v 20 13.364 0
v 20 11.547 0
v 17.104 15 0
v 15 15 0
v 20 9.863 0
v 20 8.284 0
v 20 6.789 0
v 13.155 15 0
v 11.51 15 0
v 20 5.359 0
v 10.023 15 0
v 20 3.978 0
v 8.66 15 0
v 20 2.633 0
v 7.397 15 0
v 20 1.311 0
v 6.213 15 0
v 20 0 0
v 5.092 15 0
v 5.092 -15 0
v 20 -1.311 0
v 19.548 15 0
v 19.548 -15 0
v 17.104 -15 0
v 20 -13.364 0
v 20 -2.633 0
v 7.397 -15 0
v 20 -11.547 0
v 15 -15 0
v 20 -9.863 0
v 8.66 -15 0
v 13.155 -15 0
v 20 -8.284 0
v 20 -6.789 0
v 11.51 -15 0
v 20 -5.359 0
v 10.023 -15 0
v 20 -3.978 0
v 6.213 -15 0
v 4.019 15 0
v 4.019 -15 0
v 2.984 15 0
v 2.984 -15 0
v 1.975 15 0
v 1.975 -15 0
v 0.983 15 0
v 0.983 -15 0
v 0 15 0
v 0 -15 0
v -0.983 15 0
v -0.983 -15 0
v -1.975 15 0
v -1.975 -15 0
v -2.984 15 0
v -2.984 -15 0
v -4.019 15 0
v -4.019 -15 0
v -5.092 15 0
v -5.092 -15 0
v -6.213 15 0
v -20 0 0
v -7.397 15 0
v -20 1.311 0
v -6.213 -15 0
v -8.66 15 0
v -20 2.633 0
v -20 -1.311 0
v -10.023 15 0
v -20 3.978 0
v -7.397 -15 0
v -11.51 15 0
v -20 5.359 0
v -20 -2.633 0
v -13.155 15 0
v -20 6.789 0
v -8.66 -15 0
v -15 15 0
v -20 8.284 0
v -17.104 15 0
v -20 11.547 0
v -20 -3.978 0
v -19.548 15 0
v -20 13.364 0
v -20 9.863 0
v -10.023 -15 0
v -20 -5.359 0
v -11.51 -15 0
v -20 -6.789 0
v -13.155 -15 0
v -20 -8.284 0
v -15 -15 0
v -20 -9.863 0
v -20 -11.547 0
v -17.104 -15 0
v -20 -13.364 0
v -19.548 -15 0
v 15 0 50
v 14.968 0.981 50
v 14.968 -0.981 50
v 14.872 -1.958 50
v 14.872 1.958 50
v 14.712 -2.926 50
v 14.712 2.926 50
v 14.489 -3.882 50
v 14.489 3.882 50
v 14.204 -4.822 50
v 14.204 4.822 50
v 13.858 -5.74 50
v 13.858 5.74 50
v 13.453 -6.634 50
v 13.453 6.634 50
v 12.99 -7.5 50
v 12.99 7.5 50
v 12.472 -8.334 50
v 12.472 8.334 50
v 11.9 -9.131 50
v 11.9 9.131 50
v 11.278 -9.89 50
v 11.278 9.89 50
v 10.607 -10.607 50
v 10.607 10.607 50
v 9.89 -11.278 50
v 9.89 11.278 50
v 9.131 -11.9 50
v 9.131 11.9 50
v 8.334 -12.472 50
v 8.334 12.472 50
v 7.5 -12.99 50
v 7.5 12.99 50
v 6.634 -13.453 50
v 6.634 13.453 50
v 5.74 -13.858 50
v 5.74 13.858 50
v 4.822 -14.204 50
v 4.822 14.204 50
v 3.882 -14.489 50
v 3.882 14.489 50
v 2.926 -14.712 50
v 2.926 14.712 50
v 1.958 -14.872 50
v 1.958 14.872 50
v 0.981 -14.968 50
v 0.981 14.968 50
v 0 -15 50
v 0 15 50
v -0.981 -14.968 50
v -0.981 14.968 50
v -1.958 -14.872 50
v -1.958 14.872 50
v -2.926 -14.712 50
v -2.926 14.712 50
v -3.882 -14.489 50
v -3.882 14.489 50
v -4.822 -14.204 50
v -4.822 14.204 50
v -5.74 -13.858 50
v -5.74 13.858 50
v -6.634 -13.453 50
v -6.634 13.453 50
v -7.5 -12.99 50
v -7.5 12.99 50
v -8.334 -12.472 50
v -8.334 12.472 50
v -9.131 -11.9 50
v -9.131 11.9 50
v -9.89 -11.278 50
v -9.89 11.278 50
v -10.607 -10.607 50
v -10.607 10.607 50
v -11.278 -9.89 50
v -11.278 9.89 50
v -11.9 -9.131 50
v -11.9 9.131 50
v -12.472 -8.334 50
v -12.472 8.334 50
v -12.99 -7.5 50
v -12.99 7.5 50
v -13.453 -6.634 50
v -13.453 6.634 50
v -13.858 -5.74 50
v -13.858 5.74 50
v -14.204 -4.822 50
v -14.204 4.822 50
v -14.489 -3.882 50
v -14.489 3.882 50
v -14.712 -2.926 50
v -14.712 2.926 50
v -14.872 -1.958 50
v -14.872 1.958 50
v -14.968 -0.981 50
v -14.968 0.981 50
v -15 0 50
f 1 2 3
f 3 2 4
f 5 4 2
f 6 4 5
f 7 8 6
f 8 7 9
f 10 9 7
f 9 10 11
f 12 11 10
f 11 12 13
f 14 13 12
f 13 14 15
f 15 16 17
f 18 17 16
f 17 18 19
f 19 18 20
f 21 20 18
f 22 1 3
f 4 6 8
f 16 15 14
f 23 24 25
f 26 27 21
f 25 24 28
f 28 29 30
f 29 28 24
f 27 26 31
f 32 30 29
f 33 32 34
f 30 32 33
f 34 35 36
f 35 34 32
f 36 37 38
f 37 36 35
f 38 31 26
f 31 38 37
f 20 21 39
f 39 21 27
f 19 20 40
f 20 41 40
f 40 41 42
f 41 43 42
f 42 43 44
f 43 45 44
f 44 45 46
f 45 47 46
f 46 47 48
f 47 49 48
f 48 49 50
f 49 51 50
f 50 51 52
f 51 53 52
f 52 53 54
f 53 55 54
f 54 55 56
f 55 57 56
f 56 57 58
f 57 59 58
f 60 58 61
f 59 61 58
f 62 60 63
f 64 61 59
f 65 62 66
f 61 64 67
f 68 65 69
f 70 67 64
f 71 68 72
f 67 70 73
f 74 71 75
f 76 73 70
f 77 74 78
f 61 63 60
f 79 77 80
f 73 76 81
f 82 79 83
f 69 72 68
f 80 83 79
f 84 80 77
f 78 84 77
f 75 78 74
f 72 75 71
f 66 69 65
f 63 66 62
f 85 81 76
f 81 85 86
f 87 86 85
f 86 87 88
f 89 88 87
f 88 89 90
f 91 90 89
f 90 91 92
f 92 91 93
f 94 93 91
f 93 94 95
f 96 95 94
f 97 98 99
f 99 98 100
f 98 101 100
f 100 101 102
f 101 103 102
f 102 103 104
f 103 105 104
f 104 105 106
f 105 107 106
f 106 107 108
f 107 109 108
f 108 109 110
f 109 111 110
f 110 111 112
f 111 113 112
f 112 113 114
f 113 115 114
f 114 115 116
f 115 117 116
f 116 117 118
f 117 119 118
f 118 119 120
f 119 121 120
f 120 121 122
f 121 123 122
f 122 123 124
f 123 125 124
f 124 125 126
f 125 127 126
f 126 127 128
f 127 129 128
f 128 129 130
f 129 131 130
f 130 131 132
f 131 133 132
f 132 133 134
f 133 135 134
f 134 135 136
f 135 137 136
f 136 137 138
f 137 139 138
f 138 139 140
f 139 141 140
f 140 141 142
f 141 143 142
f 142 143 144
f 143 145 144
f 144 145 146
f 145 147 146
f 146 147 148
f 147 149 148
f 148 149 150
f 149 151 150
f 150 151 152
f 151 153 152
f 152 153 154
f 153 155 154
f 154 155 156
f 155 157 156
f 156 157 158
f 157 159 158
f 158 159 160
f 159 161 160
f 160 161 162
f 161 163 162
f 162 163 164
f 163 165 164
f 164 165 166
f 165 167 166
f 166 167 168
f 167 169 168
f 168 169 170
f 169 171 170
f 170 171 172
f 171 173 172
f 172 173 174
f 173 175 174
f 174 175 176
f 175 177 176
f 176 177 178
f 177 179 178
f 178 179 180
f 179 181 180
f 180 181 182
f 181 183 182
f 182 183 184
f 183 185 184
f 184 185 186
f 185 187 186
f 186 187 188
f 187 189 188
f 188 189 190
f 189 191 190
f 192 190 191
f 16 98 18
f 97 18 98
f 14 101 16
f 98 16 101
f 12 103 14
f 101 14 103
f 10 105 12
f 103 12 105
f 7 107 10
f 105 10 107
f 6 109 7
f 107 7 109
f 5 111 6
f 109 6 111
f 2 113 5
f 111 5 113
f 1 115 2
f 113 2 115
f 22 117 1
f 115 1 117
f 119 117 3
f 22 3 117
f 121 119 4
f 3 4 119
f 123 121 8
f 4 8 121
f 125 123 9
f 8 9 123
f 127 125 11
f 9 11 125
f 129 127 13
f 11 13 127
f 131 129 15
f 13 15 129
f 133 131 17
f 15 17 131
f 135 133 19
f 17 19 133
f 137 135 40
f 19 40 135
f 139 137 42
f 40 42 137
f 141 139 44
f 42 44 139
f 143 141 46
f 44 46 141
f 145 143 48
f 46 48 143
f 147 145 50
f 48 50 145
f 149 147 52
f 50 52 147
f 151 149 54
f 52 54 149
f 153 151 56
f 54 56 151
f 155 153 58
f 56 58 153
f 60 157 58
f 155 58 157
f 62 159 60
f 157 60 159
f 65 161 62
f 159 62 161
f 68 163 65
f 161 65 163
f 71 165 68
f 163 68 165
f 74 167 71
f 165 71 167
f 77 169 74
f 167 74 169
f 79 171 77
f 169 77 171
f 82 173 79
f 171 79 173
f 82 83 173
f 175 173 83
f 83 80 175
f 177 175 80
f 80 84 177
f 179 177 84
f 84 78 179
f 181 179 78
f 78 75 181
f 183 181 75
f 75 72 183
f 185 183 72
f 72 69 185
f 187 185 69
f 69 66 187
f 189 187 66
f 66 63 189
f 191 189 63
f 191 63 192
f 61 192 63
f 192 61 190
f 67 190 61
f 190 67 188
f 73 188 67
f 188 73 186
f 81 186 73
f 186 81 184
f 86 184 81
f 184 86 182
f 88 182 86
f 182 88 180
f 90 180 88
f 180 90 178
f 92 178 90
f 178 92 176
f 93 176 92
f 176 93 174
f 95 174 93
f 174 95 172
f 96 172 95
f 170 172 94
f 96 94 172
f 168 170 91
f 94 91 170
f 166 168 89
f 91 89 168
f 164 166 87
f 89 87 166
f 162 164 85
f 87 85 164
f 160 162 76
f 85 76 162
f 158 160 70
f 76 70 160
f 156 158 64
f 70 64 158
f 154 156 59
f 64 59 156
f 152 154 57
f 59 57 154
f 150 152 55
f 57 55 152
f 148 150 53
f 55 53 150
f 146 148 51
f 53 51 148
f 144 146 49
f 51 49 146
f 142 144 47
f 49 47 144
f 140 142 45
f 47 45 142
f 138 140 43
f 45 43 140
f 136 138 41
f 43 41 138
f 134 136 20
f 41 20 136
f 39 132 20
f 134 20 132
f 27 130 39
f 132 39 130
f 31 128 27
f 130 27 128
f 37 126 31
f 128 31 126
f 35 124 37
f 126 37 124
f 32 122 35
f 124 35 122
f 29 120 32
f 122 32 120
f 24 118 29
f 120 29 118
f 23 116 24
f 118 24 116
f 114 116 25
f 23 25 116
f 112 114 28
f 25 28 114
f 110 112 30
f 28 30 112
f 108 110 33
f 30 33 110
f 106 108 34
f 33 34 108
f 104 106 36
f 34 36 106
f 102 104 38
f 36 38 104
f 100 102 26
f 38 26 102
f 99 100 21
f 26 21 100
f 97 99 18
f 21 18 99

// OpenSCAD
$fn=96;
rect_width=40;
n=96; h=50; r=15; d=30;
function q(a)=let(c=cos(a),s=sin(a),v=min((rect_width/2)/max(abs(c),0.000001),(d/2)/max(abs(s),0.000001))) [v*c,v*s,0];
p=concat([for(i=[0:n-1]) q(360*i/n)],[for(i=[0:n-1]) [r*cos(360*i/n),r*sin(360*i/n),h]]);
f=concat([[for(i=[n-1:-1:0]) i]],[[for(i=[0:n-1]) n+i]], [for(i=[0:n-1]) [i,(i+1)%n,n+(i+1)%n,n+i]]);
polyhedron(points=p,faces=f,convexity=10);
